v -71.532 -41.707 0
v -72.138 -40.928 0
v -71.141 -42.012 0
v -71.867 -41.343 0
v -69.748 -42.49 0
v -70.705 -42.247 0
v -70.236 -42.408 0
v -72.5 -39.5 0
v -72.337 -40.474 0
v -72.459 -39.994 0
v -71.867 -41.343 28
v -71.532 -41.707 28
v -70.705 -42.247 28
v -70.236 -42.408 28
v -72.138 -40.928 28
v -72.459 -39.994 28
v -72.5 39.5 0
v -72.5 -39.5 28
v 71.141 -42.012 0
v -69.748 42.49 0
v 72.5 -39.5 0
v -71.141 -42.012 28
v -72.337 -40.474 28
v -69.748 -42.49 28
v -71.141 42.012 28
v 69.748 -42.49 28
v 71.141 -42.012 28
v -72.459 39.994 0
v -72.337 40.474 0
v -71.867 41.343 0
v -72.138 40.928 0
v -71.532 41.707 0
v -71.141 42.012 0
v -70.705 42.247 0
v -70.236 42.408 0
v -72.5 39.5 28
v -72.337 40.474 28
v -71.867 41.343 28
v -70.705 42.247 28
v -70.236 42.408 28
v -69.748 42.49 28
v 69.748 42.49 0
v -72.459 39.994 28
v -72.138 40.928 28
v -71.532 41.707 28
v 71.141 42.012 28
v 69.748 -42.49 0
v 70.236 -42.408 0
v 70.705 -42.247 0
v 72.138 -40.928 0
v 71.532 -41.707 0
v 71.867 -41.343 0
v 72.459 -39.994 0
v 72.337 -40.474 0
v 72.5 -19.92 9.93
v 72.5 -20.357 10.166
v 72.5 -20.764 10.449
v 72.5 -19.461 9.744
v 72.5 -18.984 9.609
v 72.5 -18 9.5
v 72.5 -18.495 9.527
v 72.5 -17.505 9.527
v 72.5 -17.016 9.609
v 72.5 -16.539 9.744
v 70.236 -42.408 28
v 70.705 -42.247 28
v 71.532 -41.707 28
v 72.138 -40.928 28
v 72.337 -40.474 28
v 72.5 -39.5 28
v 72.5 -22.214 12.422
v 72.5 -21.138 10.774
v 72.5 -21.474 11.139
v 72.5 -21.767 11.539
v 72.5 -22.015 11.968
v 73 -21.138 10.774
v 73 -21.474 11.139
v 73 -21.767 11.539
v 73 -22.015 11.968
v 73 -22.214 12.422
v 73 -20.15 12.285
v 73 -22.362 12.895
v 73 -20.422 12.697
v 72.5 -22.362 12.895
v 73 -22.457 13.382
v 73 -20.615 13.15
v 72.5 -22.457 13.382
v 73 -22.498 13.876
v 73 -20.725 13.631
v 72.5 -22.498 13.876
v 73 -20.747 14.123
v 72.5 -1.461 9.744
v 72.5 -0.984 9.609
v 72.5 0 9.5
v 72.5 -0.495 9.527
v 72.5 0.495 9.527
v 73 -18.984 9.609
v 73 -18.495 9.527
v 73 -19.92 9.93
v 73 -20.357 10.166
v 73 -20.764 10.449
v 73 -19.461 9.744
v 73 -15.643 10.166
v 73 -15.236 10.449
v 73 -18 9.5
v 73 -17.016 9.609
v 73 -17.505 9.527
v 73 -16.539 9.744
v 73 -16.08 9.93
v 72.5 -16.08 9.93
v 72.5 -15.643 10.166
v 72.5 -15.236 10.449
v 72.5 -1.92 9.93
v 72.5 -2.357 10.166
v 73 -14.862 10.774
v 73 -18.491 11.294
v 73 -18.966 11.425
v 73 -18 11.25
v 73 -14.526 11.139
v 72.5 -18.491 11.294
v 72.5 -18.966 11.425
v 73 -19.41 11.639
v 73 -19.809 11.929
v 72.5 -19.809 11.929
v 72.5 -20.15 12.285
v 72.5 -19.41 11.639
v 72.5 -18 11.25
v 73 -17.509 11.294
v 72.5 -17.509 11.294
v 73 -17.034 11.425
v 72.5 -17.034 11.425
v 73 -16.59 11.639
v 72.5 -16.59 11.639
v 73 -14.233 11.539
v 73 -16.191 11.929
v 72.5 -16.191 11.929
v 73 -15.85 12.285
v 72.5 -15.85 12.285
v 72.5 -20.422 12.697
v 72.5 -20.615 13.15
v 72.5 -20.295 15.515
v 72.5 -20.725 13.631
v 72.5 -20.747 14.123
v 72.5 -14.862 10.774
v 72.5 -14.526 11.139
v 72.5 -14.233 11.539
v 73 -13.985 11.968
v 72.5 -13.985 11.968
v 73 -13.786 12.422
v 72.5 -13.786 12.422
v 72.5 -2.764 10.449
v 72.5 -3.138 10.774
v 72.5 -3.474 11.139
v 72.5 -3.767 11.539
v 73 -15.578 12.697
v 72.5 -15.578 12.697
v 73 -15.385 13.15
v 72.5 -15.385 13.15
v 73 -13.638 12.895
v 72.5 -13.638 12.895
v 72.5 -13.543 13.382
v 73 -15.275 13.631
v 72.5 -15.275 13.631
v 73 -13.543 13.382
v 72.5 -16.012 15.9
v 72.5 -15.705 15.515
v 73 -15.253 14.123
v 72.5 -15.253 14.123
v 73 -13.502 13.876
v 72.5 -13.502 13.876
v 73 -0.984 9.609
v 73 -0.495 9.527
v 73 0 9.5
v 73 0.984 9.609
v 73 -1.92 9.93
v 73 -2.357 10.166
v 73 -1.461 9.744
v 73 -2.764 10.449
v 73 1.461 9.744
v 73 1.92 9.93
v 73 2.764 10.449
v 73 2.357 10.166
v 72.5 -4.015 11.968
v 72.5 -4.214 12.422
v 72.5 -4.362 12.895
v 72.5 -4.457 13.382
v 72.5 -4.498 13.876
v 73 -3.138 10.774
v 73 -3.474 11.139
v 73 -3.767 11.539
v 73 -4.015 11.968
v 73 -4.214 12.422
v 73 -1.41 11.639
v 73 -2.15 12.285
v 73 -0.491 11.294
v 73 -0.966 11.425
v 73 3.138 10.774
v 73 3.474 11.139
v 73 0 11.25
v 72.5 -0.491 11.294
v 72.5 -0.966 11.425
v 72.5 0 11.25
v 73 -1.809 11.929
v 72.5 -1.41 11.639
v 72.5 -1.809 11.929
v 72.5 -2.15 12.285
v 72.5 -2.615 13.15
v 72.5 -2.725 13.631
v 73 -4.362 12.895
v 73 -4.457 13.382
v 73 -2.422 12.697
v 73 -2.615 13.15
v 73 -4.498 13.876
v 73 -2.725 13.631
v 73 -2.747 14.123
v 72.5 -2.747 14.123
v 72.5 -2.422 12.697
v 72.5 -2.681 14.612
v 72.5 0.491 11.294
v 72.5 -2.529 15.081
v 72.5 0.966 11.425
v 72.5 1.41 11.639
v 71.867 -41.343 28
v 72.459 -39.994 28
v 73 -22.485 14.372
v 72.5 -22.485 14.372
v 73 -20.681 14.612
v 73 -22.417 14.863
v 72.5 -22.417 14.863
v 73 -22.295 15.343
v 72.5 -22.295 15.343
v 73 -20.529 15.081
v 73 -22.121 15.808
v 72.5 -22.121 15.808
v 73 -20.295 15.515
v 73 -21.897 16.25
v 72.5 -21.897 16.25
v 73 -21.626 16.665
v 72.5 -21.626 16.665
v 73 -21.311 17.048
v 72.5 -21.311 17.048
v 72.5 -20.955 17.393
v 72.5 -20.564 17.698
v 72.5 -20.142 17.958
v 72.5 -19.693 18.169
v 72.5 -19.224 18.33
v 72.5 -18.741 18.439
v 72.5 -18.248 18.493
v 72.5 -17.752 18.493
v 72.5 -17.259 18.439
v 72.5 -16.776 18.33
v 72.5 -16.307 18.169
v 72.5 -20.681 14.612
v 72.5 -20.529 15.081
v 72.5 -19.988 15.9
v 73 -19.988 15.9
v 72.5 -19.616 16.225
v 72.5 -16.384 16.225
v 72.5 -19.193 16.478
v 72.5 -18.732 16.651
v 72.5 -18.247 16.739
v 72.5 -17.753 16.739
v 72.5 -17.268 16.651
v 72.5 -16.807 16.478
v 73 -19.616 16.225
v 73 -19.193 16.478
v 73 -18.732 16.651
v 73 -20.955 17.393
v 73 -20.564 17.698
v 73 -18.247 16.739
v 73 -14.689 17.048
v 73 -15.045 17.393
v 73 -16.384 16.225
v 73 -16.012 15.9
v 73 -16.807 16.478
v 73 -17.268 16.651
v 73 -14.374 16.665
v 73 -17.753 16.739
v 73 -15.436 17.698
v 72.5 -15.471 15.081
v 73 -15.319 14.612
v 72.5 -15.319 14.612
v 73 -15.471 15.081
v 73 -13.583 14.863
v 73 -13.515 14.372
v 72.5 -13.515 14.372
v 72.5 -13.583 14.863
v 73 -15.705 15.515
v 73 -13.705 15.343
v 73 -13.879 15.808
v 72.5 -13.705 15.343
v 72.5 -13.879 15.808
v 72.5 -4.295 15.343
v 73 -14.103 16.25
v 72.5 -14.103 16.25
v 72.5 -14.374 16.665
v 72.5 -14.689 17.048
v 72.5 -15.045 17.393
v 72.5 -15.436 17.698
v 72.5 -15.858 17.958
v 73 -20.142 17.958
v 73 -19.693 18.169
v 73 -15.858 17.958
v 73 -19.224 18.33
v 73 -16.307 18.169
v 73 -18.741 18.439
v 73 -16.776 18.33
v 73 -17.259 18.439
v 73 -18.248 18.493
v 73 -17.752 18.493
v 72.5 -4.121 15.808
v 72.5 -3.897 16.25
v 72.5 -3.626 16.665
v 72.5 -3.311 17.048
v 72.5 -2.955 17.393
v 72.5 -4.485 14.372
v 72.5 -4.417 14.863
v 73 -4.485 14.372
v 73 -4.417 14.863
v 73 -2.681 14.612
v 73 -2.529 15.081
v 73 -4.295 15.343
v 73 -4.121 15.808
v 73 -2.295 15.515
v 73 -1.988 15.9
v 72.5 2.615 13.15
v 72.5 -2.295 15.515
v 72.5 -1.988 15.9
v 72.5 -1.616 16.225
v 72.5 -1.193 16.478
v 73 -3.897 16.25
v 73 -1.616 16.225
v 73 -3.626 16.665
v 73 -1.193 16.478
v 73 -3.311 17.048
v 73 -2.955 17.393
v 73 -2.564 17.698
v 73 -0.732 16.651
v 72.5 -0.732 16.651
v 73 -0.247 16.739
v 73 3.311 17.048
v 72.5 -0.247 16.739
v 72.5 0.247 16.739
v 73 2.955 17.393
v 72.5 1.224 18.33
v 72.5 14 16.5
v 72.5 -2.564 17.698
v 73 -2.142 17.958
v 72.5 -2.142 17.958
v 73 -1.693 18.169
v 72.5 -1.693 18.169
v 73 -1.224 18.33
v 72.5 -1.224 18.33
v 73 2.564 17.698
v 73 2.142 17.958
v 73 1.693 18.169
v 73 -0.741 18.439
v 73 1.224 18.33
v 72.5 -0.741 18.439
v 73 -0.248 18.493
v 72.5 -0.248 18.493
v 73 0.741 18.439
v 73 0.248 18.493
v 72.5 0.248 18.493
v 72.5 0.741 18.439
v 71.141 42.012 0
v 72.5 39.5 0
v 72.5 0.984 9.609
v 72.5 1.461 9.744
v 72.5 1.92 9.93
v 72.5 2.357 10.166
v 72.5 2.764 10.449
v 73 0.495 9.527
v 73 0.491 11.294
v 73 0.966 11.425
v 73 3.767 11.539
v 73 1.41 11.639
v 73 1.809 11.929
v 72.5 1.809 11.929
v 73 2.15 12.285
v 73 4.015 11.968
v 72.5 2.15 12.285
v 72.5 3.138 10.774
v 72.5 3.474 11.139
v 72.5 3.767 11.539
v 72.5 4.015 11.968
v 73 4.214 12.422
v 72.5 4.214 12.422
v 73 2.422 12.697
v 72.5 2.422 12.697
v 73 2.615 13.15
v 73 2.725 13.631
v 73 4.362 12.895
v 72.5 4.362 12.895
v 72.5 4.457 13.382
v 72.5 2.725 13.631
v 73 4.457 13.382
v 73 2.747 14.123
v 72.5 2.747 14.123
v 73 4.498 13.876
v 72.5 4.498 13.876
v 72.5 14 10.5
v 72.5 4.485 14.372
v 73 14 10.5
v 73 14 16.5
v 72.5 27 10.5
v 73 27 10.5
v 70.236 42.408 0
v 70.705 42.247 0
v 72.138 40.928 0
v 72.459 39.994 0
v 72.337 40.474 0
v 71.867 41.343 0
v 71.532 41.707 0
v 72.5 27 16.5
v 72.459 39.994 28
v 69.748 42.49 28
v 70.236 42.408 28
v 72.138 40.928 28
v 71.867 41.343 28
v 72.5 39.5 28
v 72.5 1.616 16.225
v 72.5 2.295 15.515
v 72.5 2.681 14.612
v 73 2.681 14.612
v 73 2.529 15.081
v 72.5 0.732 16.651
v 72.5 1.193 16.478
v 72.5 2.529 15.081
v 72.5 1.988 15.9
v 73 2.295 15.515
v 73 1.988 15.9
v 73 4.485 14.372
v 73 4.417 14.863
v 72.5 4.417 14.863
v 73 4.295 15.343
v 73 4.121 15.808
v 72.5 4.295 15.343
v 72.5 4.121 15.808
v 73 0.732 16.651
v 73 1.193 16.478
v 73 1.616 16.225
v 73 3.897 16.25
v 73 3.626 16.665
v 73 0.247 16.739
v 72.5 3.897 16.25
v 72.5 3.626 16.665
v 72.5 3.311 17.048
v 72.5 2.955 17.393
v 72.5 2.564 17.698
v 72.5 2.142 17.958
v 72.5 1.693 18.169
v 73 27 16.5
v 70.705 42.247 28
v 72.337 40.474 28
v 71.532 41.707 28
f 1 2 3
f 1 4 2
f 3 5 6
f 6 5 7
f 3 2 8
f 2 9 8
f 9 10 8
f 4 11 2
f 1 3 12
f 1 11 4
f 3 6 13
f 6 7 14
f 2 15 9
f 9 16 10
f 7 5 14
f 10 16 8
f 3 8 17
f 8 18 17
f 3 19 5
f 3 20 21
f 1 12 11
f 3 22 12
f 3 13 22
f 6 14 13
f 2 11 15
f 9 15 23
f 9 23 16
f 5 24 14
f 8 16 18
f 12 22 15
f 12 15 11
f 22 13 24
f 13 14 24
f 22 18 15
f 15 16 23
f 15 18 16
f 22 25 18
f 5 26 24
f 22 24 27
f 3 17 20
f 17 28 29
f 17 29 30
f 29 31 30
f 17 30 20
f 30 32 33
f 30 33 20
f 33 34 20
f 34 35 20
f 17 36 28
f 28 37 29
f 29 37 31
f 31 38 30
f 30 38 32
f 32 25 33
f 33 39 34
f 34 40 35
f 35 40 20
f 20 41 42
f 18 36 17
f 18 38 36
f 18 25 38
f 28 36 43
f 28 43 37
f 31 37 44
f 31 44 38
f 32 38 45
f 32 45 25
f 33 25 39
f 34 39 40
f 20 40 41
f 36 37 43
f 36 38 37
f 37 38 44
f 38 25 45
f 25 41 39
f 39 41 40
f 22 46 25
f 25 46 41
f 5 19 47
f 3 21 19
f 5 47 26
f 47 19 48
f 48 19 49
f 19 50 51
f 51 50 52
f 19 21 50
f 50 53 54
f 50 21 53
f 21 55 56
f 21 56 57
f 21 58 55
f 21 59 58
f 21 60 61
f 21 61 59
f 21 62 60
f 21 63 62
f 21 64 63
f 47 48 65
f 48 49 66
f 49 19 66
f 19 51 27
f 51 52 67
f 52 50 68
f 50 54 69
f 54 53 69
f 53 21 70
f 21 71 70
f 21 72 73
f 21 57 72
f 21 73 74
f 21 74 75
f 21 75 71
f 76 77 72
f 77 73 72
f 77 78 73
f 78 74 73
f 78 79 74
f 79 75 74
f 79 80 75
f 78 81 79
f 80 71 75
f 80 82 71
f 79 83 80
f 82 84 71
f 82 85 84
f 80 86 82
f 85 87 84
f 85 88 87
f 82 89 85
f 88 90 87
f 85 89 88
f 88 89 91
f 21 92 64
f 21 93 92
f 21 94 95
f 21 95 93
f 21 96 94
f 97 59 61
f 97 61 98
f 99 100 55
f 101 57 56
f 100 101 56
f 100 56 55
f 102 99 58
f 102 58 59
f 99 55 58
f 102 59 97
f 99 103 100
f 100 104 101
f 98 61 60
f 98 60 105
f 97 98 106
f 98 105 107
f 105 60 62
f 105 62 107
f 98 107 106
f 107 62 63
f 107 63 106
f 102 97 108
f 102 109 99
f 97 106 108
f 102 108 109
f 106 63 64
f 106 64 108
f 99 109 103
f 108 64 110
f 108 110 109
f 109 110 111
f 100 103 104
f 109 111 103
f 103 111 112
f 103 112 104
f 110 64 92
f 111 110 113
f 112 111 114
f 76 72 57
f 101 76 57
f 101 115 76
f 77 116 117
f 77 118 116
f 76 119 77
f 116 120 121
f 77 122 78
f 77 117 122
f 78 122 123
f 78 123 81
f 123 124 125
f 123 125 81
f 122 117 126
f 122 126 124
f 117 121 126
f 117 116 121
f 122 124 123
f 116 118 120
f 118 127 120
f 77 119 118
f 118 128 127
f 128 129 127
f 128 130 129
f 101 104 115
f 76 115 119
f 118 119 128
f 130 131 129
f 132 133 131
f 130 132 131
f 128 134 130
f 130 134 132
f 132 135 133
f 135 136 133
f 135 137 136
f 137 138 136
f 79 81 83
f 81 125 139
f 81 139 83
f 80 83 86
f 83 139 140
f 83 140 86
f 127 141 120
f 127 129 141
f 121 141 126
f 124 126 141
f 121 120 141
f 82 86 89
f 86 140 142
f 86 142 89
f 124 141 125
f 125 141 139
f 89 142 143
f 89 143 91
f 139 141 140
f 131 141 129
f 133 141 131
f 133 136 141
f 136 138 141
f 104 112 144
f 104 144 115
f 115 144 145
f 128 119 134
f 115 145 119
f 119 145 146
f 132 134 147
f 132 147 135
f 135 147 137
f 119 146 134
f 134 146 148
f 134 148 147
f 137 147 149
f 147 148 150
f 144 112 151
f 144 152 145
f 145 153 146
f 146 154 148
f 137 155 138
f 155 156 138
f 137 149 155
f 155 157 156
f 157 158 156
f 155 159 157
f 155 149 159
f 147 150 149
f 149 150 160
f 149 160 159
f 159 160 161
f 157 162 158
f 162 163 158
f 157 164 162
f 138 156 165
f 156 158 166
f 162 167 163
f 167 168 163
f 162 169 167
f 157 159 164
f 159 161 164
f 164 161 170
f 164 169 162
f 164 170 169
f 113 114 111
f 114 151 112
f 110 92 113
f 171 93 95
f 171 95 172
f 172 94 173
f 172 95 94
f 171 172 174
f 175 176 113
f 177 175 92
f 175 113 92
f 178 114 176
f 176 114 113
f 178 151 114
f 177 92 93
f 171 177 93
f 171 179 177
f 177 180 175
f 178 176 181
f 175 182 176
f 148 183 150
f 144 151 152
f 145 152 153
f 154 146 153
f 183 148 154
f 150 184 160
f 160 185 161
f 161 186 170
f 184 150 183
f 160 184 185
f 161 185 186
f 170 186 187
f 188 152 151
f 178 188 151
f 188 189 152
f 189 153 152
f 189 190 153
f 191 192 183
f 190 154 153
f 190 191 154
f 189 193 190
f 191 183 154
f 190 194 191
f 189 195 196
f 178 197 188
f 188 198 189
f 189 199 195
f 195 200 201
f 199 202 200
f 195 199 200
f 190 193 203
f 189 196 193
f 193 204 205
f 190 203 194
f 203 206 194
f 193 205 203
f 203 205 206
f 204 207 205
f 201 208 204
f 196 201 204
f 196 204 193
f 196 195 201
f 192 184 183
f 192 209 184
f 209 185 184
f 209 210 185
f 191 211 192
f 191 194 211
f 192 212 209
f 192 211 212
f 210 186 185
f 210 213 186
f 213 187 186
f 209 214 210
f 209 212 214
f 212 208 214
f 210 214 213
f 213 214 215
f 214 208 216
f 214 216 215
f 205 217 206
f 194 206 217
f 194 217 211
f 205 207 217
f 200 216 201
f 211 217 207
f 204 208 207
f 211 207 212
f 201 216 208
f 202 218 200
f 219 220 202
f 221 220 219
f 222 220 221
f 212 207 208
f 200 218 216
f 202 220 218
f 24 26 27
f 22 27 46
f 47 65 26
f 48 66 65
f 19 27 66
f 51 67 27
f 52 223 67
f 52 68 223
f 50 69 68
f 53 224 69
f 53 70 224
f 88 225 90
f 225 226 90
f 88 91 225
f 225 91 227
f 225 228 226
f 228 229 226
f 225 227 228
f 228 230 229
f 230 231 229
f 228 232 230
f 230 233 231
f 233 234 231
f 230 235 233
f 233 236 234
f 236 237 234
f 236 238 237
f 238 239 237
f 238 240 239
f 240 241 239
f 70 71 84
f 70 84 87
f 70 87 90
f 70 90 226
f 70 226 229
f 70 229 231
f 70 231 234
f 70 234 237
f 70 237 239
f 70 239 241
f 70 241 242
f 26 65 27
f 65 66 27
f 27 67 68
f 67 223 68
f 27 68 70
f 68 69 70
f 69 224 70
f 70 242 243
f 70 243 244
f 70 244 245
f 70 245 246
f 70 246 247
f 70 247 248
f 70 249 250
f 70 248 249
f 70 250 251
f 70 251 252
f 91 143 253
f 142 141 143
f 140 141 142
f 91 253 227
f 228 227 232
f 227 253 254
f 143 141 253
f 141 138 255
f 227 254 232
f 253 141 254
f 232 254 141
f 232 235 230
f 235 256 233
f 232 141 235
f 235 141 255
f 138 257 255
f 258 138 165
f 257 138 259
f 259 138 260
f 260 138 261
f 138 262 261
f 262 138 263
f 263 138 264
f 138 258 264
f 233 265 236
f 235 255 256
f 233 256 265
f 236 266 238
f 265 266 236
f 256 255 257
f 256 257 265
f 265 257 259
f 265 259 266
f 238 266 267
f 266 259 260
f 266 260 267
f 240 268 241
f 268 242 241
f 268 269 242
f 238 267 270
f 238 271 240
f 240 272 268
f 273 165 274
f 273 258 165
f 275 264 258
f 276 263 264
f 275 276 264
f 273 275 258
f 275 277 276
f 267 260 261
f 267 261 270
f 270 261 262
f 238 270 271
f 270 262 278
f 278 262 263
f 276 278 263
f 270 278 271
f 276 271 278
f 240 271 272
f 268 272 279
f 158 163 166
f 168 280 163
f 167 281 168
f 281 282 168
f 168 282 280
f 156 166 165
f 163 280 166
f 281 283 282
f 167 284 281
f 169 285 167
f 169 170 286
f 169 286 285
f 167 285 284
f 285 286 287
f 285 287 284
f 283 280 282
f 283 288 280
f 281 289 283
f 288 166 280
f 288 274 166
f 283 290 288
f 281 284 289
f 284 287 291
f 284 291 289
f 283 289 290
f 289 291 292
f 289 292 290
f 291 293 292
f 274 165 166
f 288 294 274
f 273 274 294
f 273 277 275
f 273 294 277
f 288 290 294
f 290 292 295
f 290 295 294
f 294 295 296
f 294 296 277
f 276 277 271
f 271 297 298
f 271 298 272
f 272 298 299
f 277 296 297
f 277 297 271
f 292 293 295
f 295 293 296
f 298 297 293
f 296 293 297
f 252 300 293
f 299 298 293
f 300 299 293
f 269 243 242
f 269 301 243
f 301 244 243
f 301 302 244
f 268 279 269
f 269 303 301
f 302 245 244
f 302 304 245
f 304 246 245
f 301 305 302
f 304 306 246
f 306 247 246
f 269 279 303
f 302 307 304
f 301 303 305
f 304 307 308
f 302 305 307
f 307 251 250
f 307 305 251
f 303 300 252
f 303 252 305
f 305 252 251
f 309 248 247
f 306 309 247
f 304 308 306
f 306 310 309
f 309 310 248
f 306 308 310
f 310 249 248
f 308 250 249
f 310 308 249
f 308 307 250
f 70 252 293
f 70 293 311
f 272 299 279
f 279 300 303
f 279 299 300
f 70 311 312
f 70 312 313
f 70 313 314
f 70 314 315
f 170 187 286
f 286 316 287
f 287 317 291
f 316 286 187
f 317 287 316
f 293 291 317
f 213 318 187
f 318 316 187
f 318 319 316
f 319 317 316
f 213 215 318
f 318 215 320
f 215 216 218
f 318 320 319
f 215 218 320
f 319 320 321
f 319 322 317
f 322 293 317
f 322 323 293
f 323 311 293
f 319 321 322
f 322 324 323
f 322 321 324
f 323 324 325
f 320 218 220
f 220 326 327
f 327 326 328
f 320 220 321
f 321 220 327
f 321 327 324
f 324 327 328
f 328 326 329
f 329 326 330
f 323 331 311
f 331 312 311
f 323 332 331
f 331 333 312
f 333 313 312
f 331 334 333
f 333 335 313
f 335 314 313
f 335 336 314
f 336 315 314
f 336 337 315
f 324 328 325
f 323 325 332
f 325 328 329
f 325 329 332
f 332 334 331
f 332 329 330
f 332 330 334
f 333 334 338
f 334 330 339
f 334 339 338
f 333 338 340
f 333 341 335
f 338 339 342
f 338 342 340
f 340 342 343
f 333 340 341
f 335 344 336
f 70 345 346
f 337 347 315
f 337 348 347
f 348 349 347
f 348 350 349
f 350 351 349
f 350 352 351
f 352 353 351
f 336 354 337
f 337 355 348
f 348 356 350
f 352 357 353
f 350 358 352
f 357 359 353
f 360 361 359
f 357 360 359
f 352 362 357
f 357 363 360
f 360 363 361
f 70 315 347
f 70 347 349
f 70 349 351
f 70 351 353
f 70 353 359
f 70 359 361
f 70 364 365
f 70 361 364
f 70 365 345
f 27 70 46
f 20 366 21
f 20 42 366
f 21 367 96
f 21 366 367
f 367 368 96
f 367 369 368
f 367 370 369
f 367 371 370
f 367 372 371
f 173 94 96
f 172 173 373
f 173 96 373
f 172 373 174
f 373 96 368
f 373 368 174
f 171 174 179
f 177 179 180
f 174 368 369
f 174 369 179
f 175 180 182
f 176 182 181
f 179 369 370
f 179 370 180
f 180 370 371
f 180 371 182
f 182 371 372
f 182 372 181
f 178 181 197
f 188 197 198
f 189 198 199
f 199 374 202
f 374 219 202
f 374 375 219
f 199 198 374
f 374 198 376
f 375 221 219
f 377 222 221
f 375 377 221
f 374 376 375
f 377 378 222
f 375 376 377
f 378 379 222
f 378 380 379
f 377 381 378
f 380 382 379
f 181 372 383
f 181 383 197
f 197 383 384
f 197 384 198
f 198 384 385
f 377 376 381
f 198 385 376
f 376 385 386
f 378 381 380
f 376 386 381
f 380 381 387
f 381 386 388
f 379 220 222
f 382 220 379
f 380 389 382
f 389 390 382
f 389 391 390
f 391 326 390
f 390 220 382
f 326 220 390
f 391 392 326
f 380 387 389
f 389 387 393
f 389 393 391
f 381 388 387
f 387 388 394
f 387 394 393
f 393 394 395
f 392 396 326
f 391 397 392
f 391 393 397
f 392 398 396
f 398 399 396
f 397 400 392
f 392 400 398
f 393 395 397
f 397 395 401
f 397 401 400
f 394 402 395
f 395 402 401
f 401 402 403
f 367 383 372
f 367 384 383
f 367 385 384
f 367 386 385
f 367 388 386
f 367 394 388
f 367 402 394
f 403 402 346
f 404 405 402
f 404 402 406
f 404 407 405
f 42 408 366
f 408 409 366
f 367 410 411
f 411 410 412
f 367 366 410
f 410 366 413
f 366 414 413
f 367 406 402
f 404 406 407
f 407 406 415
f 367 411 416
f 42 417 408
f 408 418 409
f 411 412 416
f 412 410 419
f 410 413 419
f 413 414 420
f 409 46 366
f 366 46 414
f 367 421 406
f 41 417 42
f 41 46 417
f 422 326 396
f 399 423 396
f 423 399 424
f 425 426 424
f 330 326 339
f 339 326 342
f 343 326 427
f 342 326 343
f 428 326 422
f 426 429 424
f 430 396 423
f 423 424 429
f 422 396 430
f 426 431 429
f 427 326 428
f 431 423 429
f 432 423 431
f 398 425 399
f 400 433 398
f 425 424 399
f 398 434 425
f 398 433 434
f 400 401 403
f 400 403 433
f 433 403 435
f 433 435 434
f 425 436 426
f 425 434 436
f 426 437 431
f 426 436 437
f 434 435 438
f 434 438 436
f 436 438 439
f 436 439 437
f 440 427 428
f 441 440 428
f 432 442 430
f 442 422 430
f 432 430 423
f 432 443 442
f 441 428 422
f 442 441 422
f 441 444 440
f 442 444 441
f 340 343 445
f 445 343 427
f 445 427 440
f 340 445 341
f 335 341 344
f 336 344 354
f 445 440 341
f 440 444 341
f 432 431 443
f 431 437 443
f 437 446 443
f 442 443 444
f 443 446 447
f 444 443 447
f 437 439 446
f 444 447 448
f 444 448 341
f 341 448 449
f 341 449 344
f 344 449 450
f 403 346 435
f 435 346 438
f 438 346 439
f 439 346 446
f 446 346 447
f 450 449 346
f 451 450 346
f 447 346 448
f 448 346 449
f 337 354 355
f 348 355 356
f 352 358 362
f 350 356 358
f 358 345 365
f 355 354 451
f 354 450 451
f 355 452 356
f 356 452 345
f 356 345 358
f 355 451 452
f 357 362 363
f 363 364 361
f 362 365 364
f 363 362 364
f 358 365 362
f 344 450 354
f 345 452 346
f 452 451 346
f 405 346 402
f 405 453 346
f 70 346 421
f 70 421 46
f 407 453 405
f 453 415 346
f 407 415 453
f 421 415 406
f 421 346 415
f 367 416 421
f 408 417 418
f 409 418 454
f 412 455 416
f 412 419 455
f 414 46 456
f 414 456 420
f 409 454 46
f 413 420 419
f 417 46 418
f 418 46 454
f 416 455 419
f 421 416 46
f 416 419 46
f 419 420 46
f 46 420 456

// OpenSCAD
// file: ../lib/lib.scad
// Shared helpers. Include AFTER params.scad (needs TOL, M3_* etc.).
$fa = 4; $fs = 0.5;

module rrect(size, r) {            // 2D rounded rectangle, centred
    r2 = min(r, min(size[0], size[1]) / 2 - 0.001);
    offset(r = r2) square([size[0] - 2 * r2, size[1] - 2 * r2], center = true);
}
module rbox(size, r, center_xy = true) {   // box with rounded vertical edges
    translate(center_xy ? [0, 0, 0] : [size[0] / 2, size[1] / 2, 0])
        linear_extrude(size[2]) rrect([size[0], size[1]], r);
}
module rbox_at(x0, x1, y0, y1, z0, z1, r = 0.01) {
    translate([(x0 + x1) / 2, (y0 + y1) / 2, z0]) rbox([x1 - x0, y1 - y0, z1 - z0], r);
}
module box_at(x0, x1, y0, y1, z0, z1) { translate([x0, y0, z0]) cube([x1 - x0, y1 - y0, z1 - z0]); }

module ring(ro, ri, h) { difference() { cylinder(r = ro, h = h); translate([0, 0, -1]) cylinder(r = ri, h = h + 2); } }
module ring_sector(ro, ri, h, a0, a1) {
    intersection() {
        ring(ro, ri, h);
        linear_extrude(h) polygon(concat([[0, 0]], [for (a = [a0 : (a1 - a0) / 24 : a1]) 2 * ro * [cos(a), sin(a)]]));
    }
}
// teardrop hole along an axis lying horizontal (axis = Y after rotation), printable w/o support
module teardrop2d(d) { union() { circle(d = d); rotate(45) square(d / 2); } }
// vertical heat-set insert hole, opening at z=0 going +z (depth l)
module insert_hole(l = M3_INSERT_L) { translate([0, 0, -EPS]) cylinder(d = M3_INSERT_D, h = l + EPS); }
module m3_clear(l) { translate([0, 0, -EPS]) cylinder(d = M3_CLEAR, h = l + 2 * EPS); }
module m3_csk(l) {  // countersunk clearance from z=0 upward, head at z=0 side
    translate([0, 0, -EPS]) { cylinder(d = M3_CLEAR, h = l + 2 * EPS); cylinder(d1 = 6.4, d2 = M3_CLEAR, h = 1.7); }
}
module card2d() { rrect([CARD_L, CARD_W], CARD_R); }
module card_at(cy, z) { translate([0, cy, z]) linear_extrude(CARD_T) card2d(); }

// ---- gears ----
function _inv(a) = tan(a) - a * PI_ / 180;           // involute function, a in deg
function _invpt(rb, r, ang0, s) = let(al = acos(rb / r), th = ang0 - s * (_inv(al) * 180 / PI_)) [r * cos(th), r * sin(th)];
module involute_gear2d(m, z, pa = 20, clearance = 0.05) {
    rp = m * z / 2; rb = rp * cos(pa); ra = rp + m - clearance; rf = rp - 1.25 * m;
    half = 90 / z + _inv(pa) * 180 / PI_;            // tooth half-angle at base (deg)
    n = 8;
    rs = [for (i = [0 : n]) max(rb, rf) + (ra - max(rb, rf)) * i / n];
    union() {
        circle(r = rf, $fn = z * 4);
        for (k = [0 : z - 1]) rotate(k * 360 / z) polygon(concat(
            [[rf * cos(-half), rf * sin(-half)]],
            [for (r = rs) let(p = _invpt(rb, r, half, 1)) [p[0], -p[1]]],
            [for (i = [n : -1 : 0]) _invpt(rb, rs[i], half, 1)],
            [[rf * cos(half), rf * sin(half)]]));
    }
}
// straight gear rack (2D in XY: teeth along +x, pointing -y, pitch line at y=0)
module gear_rack2d(m, len, back = 3) {
    p = PI_ * m; ad = m; de = 1.25 * m; t = tan(20);
    n = ceil(len / p) + 1;
    intersection() {
        union() {
            translate([0, de]) square([len, back]);
            for (i = [0 : n]) translate([i * p - p / 4, 0]) polygon([
                [-(p / 4 + de * t), de + 0.01], [p / 4 + de * t + 0.01, de + 0.01],
                [p / 4 - ad * t, -ad], [-(p / 4 - ad * t), -ad] ]);
        }
        translate([0, -ad - 1]) square([len, ad + de + back + 2]);
    }
}
// GT2 belt-tooth profile ring (teeth outward), 2D
module gt2_ring2d(n, r_land, ri) {
    union() {
        difference() { circle(r = r_land + 0.01, $fn = n * 2); circle(r = ri, $fn = n * 2); }
        for (k = [0 : n - 1]) rotate(k * 360 / n)
            translate([r_land, 0]) hull() { translate([-0.2, 0]) square([0.2, 1.0], center = true); translate([0.25, 0]) circle(r = 0.5, $fn = 12); }
    }
}
// main file
// Vendor model: TalentCell YB1206000-USB 12 V 6 Ah Li-ion pack 145x85x28 with DC in/out jacks on the +X end. Local: centred XY, z 0..28.
include <../params.scad>
include <../lib/lib.scad>
module vendor_battery_talentcell() {
    color([0.12,0.12,0.13]) translate([0, 0, 0]) hull() for (x = [-1, 1], y = [-1, 1]) translate([x * (BATT_L / 2 - 3), y * (BATT_W / 2 - 3), 0]) cylinder(r = 3, h = BATT_H);
    color([0.05,0.05,0.05]) for (y = [-18, 0]) translate([BATT_L / 2 - 1, y, BATT_H / 2]) rotate([0, 90, 0]) difference() { cylinder(d = 9, h = 1.5); cylinder(d = 5.5, h = 4, center = true); }
    color([0.6,0.6,0.6]) translate([BATT_L / 2 - 1, 14, BATT_H / 2 - 3.5]) cube([1.5, 13, 6]);
}

vendor_battery_talentcell();
